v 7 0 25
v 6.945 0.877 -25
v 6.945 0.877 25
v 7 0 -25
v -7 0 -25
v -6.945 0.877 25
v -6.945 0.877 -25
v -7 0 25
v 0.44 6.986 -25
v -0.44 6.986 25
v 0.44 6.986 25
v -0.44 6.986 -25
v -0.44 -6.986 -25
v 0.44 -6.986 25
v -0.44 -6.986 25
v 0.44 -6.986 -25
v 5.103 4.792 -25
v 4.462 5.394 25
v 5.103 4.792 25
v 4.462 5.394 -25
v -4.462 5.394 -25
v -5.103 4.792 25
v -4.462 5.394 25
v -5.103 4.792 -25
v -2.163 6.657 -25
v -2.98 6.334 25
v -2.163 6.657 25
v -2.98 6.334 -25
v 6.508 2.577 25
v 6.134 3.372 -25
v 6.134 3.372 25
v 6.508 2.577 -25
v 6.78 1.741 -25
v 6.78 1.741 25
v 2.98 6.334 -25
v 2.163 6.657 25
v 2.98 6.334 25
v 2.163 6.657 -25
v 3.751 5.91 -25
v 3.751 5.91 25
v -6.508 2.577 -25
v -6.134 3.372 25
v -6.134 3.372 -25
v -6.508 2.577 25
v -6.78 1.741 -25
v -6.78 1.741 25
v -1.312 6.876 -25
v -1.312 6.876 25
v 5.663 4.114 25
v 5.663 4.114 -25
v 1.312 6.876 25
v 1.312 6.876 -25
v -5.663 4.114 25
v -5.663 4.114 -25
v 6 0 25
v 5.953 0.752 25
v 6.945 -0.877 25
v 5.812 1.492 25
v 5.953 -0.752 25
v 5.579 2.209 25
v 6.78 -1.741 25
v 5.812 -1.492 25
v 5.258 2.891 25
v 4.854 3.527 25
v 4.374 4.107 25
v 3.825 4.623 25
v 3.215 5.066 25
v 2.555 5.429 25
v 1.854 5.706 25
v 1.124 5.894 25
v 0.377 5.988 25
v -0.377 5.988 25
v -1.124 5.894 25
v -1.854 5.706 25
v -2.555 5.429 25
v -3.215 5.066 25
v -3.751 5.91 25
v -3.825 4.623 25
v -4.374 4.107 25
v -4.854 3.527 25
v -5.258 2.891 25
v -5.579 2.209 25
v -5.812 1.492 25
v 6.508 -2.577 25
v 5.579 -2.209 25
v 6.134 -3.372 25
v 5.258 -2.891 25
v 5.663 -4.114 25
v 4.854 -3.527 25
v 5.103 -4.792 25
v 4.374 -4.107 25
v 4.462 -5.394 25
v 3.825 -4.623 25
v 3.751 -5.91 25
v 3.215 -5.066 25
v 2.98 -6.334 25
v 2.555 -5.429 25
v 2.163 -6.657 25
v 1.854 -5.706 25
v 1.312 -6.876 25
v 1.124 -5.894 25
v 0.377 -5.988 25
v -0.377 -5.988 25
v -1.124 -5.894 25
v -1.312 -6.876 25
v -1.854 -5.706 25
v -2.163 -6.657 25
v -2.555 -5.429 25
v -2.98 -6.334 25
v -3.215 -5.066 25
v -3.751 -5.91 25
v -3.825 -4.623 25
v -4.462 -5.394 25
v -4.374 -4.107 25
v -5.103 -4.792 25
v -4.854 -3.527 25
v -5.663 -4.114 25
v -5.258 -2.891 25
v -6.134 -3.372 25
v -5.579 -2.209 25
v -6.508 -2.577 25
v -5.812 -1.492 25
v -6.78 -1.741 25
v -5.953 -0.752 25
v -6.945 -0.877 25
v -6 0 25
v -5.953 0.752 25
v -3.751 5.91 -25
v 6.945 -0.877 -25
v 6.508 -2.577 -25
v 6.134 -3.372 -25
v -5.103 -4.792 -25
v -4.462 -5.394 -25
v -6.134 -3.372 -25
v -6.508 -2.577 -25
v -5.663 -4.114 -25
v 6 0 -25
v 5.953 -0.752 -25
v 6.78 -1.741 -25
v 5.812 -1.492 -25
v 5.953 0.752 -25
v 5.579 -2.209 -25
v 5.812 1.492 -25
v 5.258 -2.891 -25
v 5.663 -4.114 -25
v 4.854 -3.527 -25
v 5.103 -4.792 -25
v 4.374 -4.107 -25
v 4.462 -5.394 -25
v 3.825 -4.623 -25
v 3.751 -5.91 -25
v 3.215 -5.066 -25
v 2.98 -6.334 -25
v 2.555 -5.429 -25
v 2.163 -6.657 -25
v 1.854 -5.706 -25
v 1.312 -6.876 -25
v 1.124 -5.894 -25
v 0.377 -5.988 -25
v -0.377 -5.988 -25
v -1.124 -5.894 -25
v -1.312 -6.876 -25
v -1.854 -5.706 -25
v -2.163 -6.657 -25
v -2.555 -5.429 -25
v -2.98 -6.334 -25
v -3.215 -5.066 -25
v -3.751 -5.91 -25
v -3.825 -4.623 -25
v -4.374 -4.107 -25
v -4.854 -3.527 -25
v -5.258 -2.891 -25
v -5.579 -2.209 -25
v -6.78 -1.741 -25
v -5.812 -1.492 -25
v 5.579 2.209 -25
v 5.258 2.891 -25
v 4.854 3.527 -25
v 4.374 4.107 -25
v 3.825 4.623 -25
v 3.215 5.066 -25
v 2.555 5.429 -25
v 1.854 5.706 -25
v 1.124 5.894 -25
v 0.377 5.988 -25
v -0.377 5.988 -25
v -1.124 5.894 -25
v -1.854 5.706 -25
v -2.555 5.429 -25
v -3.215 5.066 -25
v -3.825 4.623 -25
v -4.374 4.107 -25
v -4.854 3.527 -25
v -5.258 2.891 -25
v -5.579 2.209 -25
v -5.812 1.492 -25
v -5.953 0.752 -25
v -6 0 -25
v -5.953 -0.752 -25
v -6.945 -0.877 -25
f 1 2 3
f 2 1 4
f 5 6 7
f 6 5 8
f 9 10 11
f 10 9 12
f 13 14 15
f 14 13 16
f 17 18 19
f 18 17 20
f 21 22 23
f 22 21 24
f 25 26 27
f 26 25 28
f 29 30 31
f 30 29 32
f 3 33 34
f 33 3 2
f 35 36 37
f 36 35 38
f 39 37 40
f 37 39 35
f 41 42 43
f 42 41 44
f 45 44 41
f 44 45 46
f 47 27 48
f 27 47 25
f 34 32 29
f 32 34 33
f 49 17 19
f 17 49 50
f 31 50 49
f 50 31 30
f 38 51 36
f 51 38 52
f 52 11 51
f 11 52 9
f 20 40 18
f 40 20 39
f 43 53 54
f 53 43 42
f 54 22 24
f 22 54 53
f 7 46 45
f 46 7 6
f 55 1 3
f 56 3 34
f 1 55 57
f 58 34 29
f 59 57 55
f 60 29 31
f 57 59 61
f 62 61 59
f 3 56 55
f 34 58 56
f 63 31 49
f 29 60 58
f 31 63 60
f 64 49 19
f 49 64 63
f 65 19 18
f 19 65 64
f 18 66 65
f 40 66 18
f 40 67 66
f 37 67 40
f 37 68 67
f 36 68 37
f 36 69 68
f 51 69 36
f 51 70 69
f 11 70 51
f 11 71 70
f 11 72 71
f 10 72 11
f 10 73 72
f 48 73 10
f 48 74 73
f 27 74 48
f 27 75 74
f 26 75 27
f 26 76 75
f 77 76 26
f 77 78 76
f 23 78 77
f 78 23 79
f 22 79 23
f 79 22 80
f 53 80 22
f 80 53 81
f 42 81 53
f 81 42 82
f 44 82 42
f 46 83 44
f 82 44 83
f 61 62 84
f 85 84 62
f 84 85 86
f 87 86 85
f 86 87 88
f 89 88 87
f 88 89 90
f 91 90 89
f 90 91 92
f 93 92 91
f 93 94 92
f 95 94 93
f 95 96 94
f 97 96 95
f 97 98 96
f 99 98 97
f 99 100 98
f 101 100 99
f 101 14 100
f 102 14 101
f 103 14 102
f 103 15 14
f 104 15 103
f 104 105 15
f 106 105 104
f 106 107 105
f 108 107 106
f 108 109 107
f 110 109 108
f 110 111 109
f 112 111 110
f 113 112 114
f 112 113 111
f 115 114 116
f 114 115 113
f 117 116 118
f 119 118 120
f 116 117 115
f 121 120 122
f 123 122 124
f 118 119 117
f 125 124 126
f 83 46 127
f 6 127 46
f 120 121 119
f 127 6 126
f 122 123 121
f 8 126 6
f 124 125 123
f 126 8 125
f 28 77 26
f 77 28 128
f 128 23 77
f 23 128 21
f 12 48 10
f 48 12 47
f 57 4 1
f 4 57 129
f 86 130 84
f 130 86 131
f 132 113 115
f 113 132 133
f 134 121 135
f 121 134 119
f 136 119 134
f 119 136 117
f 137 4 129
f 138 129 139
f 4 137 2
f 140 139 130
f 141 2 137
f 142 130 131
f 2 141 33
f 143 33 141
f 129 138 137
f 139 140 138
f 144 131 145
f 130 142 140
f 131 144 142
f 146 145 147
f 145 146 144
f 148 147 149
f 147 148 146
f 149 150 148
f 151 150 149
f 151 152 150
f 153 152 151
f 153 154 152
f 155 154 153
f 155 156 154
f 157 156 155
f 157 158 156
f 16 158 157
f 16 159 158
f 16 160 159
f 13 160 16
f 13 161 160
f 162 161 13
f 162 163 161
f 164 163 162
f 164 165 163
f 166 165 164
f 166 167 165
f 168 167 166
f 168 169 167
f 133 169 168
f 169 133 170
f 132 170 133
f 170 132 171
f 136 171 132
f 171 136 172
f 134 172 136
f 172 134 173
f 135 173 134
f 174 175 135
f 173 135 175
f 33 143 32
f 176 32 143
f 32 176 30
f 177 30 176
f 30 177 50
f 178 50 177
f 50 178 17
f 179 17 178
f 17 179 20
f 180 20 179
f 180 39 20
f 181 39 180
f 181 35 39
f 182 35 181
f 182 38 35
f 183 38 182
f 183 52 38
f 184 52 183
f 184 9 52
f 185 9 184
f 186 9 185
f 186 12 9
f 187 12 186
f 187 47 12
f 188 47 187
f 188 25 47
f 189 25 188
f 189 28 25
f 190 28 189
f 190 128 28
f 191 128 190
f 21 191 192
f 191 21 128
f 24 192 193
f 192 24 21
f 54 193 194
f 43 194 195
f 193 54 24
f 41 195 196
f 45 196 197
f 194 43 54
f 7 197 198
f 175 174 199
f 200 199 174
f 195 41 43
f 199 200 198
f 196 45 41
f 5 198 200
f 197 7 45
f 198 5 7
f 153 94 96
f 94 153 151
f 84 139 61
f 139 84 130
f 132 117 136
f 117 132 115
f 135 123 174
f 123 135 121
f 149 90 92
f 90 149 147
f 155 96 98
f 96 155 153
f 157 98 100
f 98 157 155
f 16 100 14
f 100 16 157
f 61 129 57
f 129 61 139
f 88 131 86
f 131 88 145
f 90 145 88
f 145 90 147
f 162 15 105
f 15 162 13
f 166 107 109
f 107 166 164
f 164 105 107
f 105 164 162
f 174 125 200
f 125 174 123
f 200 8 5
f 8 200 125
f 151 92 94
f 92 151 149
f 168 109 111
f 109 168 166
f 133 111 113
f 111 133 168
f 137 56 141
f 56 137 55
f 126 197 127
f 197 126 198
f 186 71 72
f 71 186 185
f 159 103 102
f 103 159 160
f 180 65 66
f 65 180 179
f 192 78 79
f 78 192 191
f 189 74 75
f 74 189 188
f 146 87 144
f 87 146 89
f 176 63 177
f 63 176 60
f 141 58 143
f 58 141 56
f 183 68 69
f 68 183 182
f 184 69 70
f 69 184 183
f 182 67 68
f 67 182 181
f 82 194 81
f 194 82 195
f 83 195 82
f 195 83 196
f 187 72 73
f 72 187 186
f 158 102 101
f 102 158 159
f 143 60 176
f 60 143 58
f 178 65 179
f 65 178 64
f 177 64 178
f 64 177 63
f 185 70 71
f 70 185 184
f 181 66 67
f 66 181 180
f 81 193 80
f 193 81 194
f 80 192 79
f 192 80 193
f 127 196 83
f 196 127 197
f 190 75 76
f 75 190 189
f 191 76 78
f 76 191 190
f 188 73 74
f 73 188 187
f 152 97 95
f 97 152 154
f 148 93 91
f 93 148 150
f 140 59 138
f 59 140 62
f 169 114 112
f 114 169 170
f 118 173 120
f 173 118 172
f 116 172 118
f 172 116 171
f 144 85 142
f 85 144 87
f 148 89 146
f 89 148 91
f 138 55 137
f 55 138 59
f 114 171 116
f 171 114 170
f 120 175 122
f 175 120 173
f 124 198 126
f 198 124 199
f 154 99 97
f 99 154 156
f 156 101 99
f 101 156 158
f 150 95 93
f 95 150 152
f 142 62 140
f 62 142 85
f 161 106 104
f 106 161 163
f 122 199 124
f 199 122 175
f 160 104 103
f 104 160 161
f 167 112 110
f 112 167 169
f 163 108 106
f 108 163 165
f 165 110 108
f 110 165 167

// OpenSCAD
$fn = 50;


difference() {
	union() {
		translate(v = [0, 0, -25.0000000000]) {
			cylinder(h = 50, r = 7.0000000000);
		}
	}
	union() {
		translate(v = [0, 0, -100.0000000000]) {
			cylinder(h = 200, r = 6);
		}
	}
}
